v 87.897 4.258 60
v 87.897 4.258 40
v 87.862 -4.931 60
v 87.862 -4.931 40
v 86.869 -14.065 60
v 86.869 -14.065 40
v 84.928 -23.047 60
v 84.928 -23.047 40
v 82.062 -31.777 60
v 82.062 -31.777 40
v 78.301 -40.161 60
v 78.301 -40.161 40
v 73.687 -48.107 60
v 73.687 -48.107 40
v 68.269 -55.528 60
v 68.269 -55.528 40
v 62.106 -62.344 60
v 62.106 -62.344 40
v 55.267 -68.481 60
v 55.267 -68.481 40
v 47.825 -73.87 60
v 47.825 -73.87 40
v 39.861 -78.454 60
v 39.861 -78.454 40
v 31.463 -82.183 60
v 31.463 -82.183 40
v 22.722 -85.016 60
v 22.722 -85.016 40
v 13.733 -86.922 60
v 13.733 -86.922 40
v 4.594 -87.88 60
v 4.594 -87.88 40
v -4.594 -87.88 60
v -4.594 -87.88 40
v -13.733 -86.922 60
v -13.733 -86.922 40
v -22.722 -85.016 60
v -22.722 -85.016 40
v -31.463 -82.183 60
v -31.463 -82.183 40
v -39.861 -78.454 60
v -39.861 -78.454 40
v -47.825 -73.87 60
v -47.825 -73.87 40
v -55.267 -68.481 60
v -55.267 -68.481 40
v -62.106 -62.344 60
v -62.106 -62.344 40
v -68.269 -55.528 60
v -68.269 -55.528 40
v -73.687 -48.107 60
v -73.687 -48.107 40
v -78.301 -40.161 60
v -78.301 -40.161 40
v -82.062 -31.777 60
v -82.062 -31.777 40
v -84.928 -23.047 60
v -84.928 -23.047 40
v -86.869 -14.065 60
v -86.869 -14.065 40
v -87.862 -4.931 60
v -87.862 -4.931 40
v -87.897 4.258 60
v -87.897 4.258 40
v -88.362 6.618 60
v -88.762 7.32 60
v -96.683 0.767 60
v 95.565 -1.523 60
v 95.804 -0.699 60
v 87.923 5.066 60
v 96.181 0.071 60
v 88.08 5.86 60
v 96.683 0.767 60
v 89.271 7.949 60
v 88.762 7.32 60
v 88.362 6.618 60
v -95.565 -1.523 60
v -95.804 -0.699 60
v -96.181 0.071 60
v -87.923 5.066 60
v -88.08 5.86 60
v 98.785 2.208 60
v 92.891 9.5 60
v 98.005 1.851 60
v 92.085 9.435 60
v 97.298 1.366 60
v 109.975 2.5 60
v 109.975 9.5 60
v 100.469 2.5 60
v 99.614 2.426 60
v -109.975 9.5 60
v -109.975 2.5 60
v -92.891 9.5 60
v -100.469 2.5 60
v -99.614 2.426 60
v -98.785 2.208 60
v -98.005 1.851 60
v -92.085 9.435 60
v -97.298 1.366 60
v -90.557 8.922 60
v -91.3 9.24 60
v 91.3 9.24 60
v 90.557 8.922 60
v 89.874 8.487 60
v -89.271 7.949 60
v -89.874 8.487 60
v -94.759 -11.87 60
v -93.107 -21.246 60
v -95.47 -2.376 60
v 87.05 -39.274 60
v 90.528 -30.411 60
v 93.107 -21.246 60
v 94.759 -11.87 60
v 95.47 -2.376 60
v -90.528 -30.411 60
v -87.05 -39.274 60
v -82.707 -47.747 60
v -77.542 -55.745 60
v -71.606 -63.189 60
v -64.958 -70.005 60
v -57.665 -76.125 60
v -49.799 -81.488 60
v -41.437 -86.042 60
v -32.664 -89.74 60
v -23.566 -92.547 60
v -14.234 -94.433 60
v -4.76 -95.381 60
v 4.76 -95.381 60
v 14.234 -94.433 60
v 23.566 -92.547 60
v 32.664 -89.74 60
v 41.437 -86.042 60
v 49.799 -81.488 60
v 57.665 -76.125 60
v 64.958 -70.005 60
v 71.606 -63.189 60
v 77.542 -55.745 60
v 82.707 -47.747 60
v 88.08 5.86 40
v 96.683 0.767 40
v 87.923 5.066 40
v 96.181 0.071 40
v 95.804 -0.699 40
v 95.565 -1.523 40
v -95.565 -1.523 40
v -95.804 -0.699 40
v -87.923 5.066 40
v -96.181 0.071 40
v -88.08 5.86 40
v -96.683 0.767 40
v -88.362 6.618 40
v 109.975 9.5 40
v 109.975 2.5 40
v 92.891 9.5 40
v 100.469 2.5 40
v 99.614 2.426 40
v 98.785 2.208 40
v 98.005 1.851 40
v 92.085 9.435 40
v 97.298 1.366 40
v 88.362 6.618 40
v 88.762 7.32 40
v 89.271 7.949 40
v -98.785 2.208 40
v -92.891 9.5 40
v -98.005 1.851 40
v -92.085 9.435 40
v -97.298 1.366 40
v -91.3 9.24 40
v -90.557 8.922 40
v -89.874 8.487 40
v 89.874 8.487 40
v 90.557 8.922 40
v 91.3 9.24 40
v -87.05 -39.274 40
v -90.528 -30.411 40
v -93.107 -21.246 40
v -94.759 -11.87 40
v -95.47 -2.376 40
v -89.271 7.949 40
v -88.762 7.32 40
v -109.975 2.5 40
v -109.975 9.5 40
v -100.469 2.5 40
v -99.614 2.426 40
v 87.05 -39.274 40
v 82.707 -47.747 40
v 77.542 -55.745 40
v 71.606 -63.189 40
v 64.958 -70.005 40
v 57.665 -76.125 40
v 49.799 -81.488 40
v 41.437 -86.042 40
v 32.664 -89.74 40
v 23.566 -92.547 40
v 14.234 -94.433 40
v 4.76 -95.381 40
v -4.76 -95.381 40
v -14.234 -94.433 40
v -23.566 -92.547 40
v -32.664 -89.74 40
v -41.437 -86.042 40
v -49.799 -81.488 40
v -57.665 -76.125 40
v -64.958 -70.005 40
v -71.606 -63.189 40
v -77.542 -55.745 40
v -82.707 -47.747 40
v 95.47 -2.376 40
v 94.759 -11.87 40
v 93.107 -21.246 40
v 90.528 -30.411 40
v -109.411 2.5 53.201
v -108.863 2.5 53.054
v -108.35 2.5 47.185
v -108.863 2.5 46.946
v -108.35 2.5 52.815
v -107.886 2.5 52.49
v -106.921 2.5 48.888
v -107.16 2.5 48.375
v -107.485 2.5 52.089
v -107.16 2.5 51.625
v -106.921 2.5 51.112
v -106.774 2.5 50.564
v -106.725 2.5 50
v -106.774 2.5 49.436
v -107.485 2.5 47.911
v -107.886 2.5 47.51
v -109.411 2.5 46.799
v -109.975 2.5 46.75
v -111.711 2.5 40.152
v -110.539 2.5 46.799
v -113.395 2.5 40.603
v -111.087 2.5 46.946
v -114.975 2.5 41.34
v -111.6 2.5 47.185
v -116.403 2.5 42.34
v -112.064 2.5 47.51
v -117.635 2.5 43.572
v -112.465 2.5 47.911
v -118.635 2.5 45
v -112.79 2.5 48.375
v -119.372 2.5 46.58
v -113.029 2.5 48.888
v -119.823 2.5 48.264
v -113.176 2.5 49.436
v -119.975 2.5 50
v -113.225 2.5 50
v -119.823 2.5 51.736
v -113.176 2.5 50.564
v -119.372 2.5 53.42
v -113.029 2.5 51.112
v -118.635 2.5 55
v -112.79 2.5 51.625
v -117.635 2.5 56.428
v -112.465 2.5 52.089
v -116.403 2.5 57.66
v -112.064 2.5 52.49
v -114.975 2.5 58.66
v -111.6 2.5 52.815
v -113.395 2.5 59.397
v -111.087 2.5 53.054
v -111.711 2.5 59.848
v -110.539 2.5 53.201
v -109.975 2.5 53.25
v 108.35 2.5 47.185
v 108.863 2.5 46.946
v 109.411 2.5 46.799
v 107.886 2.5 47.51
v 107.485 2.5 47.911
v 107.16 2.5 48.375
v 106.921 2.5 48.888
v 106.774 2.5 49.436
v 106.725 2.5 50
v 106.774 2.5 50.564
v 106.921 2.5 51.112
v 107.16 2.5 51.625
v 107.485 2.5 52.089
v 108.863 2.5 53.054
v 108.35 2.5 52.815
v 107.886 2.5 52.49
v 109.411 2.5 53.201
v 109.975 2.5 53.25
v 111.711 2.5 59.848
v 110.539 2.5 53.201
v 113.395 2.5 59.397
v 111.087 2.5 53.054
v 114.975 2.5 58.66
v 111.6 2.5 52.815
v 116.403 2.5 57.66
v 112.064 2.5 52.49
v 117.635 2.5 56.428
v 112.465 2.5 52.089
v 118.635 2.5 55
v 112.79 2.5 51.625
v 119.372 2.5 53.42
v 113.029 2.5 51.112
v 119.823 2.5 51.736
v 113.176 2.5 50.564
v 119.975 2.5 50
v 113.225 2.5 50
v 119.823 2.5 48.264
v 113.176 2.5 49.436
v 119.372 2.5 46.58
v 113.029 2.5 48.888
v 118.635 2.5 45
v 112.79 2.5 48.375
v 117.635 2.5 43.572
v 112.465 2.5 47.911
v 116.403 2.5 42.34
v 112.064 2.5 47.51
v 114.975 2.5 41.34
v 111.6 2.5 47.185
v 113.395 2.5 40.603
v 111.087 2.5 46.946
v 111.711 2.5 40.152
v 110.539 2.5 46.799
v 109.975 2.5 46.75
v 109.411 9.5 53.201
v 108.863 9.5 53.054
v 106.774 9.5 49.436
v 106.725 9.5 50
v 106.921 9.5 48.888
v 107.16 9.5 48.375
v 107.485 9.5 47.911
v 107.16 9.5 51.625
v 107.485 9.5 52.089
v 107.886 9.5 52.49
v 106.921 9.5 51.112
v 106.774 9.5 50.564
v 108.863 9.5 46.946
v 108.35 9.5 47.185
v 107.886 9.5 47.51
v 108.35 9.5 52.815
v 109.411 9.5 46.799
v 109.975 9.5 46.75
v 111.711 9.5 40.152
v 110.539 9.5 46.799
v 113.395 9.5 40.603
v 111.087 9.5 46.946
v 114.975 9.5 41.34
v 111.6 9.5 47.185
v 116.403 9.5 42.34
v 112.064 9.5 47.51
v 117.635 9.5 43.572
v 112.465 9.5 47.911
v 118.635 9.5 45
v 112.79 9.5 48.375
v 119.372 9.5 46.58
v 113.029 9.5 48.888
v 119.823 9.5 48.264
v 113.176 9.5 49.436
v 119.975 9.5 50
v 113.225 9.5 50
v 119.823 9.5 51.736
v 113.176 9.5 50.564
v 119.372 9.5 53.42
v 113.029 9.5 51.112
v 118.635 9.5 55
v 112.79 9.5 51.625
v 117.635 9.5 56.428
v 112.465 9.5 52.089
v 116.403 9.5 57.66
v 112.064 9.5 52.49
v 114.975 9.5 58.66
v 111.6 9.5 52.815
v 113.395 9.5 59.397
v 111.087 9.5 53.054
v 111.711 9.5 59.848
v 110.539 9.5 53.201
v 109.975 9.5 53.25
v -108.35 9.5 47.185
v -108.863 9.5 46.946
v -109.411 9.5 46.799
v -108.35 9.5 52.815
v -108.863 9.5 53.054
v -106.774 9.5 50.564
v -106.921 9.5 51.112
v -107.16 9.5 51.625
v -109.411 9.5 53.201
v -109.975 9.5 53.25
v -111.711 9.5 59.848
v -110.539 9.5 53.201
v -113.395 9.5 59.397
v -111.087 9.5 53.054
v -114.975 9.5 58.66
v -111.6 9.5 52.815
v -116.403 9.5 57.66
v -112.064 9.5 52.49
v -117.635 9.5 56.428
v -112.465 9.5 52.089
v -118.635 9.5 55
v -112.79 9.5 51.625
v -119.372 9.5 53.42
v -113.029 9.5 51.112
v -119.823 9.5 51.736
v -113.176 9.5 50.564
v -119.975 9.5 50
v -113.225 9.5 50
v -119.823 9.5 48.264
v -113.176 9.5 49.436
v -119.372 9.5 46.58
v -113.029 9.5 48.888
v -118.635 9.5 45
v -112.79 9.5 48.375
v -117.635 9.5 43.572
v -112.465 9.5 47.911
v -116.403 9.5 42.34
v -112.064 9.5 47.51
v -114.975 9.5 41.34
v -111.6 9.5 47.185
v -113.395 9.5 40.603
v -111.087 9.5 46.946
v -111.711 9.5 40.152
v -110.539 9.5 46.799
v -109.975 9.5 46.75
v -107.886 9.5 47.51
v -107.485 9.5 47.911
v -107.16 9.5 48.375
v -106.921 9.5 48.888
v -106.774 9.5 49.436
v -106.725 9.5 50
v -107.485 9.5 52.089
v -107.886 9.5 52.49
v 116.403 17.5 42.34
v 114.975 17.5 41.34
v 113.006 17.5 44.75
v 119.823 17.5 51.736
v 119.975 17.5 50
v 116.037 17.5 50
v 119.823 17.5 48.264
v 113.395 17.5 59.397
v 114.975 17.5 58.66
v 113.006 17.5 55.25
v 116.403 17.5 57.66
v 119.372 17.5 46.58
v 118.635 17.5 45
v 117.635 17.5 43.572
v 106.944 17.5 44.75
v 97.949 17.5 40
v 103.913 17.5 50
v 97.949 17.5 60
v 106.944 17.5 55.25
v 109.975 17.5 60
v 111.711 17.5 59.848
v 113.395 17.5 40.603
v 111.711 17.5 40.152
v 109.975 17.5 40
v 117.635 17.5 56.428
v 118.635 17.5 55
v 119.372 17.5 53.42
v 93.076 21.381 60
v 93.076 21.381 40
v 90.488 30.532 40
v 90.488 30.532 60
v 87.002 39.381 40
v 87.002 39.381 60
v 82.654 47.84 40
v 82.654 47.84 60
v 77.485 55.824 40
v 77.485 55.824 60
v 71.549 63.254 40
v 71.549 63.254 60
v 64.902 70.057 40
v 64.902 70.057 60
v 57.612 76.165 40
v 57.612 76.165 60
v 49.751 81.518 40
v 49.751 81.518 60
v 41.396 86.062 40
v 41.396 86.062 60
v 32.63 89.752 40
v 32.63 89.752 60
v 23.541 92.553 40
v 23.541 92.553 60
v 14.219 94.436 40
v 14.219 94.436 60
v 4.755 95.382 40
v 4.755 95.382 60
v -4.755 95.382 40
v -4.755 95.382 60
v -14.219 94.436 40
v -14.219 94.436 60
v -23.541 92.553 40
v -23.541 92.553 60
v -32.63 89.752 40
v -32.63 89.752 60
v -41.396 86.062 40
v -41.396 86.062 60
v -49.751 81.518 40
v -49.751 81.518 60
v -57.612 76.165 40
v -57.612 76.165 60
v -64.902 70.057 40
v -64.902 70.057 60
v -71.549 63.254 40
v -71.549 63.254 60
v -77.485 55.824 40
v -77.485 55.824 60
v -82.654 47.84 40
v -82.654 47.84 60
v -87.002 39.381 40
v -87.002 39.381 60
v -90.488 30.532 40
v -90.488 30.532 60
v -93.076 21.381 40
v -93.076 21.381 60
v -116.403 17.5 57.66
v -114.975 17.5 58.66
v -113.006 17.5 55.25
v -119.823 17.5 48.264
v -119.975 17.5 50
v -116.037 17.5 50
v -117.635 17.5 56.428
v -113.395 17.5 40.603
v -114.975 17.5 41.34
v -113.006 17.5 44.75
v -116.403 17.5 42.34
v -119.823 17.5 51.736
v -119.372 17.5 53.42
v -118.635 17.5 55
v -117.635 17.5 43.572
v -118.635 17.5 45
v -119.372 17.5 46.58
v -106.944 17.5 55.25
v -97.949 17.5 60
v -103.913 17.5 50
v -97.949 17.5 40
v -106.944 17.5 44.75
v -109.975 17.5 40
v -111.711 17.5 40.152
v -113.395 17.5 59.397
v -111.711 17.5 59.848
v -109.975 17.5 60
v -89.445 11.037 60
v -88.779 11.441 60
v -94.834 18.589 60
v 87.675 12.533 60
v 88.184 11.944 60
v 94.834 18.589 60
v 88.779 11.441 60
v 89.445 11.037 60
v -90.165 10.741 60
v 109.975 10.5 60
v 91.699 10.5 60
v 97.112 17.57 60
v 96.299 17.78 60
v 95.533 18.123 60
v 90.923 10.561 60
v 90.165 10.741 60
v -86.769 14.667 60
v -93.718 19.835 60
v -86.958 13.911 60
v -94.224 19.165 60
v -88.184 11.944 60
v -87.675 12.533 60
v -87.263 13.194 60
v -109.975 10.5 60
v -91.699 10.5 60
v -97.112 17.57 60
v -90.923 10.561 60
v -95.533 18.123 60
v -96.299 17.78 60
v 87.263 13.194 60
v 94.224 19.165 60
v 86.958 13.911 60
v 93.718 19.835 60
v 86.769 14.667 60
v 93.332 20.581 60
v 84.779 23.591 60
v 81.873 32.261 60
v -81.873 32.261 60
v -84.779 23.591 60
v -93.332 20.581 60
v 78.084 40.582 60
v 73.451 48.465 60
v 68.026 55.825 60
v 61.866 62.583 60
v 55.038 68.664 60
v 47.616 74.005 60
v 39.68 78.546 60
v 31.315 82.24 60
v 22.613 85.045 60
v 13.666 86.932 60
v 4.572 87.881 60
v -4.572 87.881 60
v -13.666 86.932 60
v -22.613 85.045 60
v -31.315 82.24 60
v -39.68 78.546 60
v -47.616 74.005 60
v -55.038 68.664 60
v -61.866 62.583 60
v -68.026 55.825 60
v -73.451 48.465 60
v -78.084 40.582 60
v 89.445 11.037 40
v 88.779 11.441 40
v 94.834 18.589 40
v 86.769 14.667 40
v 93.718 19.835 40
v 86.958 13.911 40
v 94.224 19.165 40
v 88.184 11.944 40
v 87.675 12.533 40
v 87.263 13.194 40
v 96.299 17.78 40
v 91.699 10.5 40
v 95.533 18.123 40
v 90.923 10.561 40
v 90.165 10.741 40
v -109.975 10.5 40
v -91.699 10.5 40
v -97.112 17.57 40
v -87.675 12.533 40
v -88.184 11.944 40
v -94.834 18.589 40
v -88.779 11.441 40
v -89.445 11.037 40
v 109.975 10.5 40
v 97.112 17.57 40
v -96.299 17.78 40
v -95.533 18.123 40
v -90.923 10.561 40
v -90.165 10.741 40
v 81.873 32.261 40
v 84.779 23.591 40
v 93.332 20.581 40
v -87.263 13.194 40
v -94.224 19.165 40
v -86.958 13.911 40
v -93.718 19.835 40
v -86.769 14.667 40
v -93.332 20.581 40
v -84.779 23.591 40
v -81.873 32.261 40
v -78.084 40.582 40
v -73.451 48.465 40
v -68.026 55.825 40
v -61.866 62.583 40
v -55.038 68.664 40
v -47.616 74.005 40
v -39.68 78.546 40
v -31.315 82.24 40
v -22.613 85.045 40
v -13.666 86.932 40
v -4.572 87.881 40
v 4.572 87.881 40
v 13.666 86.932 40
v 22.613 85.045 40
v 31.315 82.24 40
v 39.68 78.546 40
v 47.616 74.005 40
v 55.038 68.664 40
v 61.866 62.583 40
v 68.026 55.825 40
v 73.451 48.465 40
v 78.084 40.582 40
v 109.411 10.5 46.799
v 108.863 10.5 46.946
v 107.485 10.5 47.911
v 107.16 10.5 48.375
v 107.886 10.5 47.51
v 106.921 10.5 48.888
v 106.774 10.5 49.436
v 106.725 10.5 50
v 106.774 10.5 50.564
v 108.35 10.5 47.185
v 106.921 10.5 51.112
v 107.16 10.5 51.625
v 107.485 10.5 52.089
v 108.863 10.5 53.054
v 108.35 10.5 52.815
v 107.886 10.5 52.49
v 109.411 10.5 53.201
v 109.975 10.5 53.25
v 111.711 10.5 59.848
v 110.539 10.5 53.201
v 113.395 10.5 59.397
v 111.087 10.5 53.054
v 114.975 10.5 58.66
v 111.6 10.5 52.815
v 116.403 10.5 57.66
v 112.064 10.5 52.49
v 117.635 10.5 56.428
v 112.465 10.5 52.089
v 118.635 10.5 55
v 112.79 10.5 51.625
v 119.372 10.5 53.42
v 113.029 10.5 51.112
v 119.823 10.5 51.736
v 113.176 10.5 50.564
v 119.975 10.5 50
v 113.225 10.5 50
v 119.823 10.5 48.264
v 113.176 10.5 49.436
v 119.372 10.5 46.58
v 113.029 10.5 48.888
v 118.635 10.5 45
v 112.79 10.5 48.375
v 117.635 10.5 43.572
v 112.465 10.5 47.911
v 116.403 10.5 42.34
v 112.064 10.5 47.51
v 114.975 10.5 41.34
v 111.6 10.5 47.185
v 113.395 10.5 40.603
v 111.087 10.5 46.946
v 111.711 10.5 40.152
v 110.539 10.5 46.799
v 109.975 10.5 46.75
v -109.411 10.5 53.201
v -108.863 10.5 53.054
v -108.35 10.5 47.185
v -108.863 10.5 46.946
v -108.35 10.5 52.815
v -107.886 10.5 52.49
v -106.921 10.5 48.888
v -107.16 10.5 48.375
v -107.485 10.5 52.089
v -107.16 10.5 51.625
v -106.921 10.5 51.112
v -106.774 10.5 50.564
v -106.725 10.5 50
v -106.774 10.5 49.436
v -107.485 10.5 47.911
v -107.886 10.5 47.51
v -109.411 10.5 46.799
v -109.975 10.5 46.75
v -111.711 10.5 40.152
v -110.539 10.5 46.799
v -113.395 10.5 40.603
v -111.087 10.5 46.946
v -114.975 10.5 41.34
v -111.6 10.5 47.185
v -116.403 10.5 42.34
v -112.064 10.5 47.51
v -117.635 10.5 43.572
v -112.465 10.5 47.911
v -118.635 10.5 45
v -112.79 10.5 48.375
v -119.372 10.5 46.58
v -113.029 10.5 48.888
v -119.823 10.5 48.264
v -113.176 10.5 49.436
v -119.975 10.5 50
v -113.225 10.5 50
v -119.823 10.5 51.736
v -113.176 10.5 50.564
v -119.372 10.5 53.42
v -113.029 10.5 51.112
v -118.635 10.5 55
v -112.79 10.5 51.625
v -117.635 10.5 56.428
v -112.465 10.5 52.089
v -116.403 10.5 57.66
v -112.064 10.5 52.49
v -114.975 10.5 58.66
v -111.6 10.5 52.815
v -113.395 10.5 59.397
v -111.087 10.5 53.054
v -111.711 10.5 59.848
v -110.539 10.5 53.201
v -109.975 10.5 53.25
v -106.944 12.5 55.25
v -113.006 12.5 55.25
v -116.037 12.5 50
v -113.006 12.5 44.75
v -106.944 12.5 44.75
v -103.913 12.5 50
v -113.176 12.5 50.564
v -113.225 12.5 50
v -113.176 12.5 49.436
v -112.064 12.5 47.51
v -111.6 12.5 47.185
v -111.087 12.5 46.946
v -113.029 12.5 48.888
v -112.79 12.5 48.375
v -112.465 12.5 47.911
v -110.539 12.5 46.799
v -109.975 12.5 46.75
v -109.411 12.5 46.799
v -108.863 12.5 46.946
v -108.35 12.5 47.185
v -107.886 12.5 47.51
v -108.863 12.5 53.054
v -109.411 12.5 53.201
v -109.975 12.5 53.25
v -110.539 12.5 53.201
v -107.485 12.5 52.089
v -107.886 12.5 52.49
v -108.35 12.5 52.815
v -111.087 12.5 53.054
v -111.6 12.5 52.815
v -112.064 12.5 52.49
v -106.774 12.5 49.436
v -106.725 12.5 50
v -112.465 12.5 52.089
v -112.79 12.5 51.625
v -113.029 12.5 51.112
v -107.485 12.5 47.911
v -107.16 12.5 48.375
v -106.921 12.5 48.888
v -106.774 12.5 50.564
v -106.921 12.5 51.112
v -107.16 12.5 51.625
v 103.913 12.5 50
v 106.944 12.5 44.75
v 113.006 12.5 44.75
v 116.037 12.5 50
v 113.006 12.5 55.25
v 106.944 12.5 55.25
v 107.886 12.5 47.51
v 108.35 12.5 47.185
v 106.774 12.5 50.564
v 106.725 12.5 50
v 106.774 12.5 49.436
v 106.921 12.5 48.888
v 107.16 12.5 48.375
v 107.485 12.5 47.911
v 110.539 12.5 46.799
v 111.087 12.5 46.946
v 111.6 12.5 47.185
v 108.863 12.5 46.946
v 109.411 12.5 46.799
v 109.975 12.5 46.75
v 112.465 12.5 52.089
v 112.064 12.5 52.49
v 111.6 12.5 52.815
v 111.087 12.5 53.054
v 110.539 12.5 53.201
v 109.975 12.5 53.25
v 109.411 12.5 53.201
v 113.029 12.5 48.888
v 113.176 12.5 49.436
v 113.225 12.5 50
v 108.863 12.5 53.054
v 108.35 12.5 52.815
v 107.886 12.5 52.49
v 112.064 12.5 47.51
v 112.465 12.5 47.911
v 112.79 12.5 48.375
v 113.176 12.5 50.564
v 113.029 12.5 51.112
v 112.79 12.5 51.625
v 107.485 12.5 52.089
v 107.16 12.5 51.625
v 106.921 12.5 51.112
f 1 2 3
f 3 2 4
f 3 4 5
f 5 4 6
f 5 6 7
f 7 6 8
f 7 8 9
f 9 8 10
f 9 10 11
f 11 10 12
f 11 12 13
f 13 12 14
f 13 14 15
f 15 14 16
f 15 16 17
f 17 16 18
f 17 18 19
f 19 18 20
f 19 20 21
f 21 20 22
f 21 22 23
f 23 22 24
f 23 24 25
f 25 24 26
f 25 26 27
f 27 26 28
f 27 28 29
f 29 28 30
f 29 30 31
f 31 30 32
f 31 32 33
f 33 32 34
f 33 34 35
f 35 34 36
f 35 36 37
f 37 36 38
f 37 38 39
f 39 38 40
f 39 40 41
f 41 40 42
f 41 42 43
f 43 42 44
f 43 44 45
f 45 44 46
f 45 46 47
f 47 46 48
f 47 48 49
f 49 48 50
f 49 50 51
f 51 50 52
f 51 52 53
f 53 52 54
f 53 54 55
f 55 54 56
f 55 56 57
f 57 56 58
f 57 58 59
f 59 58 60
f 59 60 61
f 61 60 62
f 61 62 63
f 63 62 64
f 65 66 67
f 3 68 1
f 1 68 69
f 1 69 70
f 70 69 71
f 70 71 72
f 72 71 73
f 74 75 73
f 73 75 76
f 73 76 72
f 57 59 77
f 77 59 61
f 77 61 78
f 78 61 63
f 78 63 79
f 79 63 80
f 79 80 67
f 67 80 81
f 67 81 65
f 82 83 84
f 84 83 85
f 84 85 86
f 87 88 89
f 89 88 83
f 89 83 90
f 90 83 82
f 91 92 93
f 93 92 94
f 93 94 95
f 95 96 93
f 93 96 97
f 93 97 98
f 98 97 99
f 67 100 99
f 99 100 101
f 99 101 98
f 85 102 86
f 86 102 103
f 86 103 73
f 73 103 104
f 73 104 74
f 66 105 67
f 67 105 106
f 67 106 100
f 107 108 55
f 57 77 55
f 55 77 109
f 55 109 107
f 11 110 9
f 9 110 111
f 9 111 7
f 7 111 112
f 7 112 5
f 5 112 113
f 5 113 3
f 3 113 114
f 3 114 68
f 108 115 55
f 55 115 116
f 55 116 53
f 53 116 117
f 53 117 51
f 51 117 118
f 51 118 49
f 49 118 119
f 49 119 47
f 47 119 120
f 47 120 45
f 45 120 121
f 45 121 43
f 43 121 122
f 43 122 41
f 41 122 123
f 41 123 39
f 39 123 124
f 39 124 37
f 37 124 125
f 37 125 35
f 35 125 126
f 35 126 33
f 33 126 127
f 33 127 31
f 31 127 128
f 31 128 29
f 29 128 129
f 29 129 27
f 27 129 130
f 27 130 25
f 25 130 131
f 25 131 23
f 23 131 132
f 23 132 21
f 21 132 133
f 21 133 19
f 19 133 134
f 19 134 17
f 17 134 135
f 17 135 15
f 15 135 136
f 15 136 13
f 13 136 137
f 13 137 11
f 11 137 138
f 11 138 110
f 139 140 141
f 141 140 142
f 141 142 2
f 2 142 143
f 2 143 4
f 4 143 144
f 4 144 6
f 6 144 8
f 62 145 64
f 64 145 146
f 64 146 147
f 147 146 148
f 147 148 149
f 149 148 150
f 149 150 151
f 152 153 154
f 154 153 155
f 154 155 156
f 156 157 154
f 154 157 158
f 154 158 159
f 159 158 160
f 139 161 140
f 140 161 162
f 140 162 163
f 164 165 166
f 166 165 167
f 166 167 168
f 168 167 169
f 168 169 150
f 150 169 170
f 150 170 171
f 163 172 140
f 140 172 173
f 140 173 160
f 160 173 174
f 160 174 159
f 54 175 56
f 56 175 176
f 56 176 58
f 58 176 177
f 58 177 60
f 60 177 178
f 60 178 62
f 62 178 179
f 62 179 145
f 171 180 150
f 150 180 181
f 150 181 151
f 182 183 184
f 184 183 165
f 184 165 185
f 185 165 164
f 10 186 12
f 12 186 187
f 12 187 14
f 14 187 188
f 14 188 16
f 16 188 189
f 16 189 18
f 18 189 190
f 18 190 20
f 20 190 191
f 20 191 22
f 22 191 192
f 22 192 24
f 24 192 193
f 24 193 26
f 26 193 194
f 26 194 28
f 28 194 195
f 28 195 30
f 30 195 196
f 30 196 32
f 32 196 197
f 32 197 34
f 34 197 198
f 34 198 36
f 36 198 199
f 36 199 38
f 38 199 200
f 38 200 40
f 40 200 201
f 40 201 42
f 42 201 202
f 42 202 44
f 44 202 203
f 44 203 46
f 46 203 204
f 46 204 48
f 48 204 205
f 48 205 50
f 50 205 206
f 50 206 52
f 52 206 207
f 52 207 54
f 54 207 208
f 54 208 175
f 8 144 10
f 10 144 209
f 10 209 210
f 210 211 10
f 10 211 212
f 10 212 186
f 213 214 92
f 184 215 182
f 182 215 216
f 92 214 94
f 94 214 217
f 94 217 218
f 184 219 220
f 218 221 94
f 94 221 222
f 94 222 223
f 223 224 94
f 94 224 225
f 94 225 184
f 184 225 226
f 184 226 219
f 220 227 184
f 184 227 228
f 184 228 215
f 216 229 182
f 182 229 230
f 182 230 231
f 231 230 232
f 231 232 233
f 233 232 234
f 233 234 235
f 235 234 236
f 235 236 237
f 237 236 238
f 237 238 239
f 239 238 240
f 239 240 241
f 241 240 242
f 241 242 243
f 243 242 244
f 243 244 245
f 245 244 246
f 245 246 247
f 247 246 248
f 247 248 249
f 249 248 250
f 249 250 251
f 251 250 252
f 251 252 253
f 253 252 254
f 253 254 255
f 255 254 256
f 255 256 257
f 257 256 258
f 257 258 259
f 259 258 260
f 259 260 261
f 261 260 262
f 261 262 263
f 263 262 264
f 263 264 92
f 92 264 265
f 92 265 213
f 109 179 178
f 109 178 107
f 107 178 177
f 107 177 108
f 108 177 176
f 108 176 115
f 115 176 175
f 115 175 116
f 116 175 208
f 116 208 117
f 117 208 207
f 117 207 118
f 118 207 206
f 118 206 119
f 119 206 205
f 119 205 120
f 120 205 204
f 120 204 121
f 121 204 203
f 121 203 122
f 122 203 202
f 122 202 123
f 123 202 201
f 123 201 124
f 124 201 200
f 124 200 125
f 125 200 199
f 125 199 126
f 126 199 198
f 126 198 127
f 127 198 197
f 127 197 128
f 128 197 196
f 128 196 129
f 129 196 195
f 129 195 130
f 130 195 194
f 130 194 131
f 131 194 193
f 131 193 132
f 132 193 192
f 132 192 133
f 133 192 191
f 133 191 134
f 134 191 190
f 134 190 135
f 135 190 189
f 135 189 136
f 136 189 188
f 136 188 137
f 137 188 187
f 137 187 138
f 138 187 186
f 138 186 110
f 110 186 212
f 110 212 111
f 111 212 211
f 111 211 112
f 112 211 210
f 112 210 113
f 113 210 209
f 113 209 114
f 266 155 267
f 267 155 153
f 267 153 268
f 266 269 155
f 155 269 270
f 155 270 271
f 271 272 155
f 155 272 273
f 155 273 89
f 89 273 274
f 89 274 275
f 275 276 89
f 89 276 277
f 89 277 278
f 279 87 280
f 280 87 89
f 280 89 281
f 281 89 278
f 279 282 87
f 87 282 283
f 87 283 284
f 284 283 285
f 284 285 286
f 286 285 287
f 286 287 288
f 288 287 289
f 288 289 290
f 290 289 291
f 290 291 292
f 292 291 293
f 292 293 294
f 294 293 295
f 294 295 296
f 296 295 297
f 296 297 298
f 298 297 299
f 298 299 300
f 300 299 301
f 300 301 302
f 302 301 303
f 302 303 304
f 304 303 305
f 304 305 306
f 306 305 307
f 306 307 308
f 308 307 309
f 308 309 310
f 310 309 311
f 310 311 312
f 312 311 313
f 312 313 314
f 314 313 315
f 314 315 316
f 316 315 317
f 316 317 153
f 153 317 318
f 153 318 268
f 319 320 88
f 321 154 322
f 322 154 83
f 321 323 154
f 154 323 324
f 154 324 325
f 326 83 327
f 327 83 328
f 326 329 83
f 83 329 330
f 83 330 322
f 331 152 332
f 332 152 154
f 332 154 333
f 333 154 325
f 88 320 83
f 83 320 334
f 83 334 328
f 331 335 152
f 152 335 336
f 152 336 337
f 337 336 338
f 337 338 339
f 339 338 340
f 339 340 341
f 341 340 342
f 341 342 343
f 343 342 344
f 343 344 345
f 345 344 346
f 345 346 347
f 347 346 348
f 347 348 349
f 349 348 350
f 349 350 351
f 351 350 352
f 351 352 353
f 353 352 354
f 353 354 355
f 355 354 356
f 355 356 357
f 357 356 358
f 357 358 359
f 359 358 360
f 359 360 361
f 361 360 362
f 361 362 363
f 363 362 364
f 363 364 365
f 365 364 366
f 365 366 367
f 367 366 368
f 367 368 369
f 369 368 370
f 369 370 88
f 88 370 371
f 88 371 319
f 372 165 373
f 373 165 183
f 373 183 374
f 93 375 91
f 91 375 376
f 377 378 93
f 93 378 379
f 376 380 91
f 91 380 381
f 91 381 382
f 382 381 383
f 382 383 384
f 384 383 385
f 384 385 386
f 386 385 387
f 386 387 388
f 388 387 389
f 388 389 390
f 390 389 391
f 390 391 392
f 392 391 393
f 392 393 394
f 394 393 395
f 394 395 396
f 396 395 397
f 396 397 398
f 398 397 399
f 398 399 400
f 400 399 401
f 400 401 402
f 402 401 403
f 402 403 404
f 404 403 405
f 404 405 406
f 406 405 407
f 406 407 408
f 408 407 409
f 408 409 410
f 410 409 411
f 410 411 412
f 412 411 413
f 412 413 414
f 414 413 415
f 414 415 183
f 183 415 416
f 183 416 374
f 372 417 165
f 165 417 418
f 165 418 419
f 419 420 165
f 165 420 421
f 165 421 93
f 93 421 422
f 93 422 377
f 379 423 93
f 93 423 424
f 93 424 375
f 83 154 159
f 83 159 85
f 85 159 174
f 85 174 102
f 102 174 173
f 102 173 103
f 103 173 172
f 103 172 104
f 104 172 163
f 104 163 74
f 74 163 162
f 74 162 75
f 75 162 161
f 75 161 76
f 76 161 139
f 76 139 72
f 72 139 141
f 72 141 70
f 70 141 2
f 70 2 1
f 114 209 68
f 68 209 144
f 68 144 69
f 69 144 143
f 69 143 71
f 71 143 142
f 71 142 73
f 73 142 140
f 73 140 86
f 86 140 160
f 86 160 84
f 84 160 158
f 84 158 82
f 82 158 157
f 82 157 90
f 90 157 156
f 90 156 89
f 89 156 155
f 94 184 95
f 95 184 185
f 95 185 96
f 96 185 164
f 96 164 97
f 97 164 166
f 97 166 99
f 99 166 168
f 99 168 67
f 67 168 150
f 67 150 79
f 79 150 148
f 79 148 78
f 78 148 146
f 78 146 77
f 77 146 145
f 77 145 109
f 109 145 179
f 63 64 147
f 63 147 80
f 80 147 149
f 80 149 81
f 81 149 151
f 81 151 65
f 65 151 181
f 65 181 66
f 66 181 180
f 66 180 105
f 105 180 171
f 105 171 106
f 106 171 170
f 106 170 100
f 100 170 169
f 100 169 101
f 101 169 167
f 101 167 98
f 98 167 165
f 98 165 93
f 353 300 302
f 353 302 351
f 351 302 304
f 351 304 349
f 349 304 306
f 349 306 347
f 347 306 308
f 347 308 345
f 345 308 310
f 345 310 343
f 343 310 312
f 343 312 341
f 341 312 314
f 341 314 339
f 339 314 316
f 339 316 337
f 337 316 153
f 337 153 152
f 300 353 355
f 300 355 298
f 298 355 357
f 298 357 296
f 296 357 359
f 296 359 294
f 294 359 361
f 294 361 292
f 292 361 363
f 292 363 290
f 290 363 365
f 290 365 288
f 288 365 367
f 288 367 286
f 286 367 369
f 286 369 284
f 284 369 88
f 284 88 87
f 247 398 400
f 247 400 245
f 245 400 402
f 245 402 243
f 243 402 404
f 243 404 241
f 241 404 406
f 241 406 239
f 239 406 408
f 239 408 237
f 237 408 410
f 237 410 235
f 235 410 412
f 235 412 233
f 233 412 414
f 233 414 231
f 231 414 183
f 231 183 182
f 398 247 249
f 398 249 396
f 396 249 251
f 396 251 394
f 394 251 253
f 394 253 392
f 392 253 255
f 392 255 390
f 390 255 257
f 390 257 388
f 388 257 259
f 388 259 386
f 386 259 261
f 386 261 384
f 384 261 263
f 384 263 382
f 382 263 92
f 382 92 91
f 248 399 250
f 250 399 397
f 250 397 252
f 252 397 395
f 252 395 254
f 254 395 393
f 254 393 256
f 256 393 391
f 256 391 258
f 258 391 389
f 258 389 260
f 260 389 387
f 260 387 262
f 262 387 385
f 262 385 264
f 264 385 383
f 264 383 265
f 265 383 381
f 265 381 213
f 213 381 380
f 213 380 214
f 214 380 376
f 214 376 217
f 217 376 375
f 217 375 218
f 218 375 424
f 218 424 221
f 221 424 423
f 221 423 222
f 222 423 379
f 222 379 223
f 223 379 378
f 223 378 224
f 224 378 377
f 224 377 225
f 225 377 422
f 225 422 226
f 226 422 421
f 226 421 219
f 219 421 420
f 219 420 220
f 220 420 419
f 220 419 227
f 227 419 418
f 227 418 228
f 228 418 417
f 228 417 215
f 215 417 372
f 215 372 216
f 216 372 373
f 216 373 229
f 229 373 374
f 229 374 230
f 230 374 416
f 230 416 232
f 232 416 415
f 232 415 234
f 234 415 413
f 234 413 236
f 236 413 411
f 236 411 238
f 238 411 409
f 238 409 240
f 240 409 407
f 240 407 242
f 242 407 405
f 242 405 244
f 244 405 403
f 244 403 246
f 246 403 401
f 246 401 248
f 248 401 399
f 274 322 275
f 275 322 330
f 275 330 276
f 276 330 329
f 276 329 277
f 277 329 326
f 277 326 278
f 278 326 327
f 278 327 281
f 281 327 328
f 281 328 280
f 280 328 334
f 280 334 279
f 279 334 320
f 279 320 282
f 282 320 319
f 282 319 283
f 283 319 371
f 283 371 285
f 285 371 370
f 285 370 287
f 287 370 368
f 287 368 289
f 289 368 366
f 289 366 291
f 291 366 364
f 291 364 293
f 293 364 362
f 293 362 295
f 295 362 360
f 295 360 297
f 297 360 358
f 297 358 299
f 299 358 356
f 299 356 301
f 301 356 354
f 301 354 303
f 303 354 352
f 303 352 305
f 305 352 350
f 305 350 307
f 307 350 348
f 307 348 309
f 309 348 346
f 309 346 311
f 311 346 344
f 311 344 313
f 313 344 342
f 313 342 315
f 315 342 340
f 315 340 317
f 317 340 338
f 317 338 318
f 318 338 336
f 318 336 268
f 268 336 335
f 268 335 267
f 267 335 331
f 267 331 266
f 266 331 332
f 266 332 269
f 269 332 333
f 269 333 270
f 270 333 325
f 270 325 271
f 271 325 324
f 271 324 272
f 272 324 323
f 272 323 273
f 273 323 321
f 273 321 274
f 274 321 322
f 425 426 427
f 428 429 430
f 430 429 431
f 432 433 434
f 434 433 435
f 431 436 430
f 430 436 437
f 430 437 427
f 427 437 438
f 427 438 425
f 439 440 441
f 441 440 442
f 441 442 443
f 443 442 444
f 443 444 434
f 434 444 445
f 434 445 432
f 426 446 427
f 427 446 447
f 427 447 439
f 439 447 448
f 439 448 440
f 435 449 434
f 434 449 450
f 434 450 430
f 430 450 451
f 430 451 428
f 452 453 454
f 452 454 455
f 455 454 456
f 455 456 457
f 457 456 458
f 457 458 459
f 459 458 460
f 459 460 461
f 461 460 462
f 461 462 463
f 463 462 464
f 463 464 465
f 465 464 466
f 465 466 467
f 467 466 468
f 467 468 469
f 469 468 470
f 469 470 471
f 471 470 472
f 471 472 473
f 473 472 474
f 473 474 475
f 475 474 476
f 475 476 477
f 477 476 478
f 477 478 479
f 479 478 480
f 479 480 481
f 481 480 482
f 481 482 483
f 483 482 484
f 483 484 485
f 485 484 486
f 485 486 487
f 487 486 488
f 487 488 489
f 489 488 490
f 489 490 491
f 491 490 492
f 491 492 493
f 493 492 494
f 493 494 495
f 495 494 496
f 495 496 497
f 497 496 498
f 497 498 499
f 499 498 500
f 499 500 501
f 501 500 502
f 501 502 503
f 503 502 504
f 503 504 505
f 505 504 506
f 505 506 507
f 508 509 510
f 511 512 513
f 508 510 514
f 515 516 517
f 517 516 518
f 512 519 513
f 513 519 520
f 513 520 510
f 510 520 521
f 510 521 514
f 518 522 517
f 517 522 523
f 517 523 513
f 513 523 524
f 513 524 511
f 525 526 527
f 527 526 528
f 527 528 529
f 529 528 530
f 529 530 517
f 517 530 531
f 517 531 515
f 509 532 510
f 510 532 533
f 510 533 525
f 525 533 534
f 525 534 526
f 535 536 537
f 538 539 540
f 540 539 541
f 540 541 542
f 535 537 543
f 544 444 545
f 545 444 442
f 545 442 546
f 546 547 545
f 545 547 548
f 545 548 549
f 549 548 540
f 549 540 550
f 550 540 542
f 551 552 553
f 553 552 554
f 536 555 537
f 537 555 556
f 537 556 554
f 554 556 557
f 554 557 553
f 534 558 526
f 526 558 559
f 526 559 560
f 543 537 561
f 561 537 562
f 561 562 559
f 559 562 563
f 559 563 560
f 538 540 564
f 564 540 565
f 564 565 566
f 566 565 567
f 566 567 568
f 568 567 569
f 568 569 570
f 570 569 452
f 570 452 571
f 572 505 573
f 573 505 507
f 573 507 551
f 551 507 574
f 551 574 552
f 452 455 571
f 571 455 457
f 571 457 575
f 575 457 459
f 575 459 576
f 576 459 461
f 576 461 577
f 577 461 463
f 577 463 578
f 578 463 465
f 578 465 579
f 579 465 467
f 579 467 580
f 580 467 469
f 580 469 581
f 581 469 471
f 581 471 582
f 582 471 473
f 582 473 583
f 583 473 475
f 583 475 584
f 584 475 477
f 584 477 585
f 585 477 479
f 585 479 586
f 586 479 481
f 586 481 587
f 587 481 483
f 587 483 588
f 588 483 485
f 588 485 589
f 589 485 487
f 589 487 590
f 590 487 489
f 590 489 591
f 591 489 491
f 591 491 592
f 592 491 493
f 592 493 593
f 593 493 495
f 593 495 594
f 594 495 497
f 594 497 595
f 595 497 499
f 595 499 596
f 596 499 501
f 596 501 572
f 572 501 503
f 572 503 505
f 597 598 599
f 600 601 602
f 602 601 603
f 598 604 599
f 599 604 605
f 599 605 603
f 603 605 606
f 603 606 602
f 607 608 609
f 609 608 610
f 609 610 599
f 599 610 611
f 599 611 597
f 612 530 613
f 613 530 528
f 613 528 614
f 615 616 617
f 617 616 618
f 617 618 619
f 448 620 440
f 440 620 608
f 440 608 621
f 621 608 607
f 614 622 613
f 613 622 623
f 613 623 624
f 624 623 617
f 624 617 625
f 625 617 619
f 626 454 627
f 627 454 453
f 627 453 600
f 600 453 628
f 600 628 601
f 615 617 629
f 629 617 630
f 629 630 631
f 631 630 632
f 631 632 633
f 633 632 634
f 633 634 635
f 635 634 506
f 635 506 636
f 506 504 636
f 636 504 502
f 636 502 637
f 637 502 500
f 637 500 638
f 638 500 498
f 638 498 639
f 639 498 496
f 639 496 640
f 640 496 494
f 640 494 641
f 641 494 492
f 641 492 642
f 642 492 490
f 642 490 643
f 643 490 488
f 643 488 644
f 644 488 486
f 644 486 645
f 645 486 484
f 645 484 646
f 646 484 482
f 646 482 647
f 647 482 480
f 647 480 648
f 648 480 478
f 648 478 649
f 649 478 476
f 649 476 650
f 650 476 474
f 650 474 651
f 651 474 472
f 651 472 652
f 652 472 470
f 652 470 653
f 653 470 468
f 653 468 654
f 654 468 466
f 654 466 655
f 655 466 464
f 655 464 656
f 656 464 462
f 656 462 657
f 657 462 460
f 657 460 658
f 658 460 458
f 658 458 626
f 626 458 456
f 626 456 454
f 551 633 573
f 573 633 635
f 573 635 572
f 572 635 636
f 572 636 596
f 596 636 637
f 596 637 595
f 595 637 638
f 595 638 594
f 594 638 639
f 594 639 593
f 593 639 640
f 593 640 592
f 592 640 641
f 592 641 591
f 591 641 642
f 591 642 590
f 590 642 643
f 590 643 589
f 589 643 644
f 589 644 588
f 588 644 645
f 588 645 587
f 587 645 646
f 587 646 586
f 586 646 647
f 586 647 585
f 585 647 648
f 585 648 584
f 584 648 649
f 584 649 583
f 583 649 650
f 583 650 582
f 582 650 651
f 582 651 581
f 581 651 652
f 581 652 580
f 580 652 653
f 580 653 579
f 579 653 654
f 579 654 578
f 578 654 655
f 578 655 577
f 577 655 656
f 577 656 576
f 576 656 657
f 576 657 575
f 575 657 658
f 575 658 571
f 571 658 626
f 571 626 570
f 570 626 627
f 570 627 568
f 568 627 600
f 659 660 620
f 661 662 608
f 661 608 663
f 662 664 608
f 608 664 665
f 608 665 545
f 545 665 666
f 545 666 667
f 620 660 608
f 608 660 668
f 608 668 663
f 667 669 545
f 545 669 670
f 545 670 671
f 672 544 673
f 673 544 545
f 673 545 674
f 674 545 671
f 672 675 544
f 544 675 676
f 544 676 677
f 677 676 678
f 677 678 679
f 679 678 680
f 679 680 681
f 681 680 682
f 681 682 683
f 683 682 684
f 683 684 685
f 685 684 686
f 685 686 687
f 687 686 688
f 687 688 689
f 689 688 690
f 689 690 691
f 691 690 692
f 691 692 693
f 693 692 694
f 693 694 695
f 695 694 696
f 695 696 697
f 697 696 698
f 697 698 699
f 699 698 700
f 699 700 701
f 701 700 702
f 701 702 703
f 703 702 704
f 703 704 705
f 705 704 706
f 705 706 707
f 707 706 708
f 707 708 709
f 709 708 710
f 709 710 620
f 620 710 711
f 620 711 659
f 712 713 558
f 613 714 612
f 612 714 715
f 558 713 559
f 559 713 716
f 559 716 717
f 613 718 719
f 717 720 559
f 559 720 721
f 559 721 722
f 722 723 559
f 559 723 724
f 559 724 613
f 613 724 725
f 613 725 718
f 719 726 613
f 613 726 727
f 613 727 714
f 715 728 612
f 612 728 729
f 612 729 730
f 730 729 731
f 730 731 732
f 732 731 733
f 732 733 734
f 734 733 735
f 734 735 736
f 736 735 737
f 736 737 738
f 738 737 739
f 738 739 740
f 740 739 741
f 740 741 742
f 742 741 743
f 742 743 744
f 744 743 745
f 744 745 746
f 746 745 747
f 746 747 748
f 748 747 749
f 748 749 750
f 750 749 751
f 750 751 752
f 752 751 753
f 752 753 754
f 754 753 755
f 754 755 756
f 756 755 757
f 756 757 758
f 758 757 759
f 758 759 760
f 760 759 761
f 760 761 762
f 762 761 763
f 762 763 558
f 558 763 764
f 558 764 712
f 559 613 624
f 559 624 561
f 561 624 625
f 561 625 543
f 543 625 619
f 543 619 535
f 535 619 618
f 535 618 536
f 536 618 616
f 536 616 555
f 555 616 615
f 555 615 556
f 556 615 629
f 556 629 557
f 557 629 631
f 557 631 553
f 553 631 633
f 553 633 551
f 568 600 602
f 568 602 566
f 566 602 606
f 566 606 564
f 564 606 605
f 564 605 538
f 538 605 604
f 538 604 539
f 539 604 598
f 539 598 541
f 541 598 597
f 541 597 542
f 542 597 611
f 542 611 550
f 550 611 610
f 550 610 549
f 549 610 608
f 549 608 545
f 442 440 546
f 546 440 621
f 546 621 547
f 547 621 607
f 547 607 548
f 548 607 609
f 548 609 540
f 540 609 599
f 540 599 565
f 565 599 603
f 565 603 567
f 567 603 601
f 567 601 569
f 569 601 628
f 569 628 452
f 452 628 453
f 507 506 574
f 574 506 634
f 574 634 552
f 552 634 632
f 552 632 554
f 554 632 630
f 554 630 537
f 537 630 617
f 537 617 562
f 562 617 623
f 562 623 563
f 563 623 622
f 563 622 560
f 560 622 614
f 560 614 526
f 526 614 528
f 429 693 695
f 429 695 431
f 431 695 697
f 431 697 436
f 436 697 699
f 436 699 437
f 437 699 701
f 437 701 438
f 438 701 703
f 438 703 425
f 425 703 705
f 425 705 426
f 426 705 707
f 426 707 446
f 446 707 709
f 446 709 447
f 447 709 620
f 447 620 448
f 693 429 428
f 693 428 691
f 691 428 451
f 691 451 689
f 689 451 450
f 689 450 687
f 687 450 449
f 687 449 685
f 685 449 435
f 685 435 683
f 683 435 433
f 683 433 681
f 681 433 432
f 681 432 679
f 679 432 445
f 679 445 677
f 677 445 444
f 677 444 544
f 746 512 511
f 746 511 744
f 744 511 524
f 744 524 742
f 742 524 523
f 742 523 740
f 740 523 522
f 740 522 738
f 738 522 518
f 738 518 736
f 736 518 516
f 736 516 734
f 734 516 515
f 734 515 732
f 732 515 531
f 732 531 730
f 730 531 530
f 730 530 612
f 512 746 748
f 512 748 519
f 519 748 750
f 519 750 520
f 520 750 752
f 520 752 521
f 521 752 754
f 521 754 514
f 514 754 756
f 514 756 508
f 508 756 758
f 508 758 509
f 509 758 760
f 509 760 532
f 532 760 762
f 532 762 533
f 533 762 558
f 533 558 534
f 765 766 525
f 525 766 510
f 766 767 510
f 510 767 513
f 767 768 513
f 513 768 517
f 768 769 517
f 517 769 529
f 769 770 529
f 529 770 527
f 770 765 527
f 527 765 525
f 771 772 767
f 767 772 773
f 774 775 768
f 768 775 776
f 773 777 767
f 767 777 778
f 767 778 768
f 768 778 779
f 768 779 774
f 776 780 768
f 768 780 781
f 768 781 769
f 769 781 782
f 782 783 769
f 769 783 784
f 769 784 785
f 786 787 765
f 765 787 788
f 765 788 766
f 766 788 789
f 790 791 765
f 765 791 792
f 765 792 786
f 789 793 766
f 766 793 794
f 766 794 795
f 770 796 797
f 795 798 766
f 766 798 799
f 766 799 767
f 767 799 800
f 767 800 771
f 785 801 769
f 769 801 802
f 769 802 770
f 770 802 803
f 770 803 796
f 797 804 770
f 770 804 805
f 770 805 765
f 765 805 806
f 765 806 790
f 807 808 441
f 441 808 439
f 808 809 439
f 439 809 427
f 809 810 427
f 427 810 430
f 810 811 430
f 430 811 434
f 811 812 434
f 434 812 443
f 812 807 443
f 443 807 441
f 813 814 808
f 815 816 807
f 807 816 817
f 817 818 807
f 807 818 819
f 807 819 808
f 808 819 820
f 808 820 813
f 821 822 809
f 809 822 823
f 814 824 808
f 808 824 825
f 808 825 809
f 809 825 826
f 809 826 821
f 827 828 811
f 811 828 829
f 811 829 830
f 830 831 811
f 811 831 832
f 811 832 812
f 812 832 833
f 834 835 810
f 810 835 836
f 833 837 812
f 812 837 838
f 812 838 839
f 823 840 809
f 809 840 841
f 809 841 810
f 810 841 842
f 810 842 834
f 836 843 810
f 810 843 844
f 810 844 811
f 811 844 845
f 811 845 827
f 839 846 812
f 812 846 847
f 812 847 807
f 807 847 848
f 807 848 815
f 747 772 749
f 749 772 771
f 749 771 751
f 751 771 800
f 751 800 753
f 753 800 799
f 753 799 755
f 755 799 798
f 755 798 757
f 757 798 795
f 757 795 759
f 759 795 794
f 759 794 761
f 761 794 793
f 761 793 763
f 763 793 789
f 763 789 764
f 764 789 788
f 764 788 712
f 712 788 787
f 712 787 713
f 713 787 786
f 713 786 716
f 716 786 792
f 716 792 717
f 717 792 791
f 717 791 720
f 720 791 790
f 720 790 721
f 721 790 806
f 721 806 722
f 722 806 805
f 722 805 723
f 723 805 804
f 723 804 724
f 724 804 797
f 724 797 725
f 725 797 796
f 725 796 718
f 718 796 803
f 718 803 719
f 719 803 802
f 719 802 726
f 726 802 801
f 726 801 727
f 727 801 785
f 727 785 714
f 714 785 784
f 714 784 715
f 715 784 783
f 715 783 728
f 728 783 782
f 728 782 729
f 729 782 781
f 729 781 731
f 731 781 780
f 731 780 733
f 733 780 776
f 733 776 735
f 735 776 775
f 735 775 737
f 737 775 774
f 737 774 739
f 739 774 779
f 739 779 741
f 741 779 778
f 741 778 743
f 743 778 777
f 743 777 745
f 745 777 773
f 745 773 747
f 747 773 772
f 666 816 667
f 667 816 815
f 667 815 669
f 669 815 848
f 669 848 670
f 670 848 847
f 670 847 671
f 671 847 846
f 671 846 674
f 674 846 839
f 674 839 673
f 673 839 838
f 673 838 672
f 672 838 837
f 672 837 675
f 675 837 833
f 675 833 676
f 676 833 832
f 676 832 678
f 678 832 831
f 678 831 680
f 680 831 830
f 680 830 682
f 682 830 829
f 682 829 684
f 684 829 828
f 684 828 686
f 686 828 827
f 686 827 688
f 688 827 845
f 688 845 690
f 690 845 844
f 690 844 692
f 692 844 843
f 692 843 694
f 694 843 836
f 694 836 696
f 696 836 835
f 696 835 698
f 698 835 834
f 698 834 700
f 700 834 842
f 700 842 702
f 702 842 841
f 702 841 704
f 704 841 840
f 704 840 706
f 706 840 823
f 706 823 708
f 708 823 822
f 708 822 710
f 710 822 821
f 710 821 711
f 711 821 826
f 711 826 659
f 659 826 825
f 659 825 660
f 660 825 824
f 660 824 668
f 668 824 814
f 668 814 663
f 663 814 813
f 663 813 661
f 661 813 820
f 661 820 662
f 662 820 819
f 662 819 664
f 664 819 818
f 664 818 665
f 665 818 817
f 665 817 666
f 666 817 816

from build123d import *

# Parameters (mm, degrees)
BOSS_EXTRUDE1_DEPTH     = 20
CUT_EXTRUDE1_DEPTH      = 266.13439864
CUT_EXTRUDE1_DEPTH_BACK = 266.13439864
SKETCH3_W               = 20
SKETCH3_H               = 1
FILLET1_R               = 5
FILLET2_R               = 5
FILLET3_R               = 10
FILLET4_R               = 10
CUT_EXTRUDE2_DEPTH      = 5
SKETCH5_R               = 3.25
CUT_EXTRUDE3_DEPTH      = 173.214981616


with BuildPart() as part:
    # Sketch2 → Boss-Extrude1 (new body)
    with BuildSketch(Plane(origin=(0, 0, 40), x_dir=(-1, 0, 0), z_dir=(0, 0, -1))):
        with BuildLine():
            Line((94.97499671, 10), (119.97499671, 10))
            Line((119.97499671, 10), (119.97499671, 17.5))
            Line((119.97499671, 17.5), (93.882905792, 17.5))
            ThreePointArc((93.882905792, 17.5), (94.503382661, 13.760838116), (94.97499671, 10))
        make_face()
        with BuildLine():
            Line((87.429971978, 10), (94.97499671, 10))
            ThreePointArc((94.97499671, 10), (94.503382661, 13.760838116), (93.882905792, 17.5))
            Line((93.882905792, 17.5), (86.242390969, 17.5))
            ThreePointArc((86.242390969, 17.5), (86.917115189, 13.762815379), (87.429971978, 10))
        make_face()
        with BuildLine():
            Line((86.242390969, 17.5), (93.882905792, 17.5))
            ThreePointArc((93.882905792, 17.5), (0, 95.5), (-93.882905792, 17.5))
            Line((-93.882905792, 17.5), (-86.242390969, 17.5))
            ThreePointArc((-86.242390969, 17.5), (0, 88), (86.242390969, 17.5))
        make_face()
        with BuildLine():
            Line((87.964481468, 2.5), (95.467271879, 2.5))
            ThreePointArc((95.467271879, 2.5), (95.294946961, 6.254844819), (94.97499671, 10))
            Line((94.97499671, 10), (87.429971978, 10))
            ThreePointArc((87.429971978, 10), (87.77736653, 6.255711398), (87.964481468, 2.5))
        make_face()
        with BuildLine():
            Line((95.467271879, 2.5), (119.97499671, 2.5))
            Line((119.97499671, 2.5), (119.97499671, 10))
            Line((119.97499671, 10), (94.97499671, 10))
            ThreePointArc((94.97499671, 10), (95.294946961, 6.254844819), (95.467271879, 2.5))
        make_face()
        with BuildLine():
            ThreePointArc((95.5, 0), (95.491817619, 1.250107108), (95.467271879, 2.5))
            Line((95.467271879, 2.5), (87.964481468, 2.5))
            ThreePointArc((87.964481468, 2.5), (87.991119919, 1.25012615), (88, 0))
            ThreePointArc((88, 0), (-1.25012615, -87.991119919), (-87.964481468, 2.5))
            Line((-87.964481468, 2.5), (-95.467271879, 2.5))
            ThreePointArc((-95.467271879, 2.5), (-1.250107108, -95.491817619), (95.5, 0))
        make_face()
        with BuildLine():
            Line((-95.467271879, 2.5), (-87.964481468, 2.5))
            ThreePointArc((-87.964481468, 2.5), (-87.77736653, 6.255711398), (-87.429971978, 10))
            Line((-87.429971978, 10), (-94.97499671, 10))
            ThreePointArc((-94.97499671, 10), (-95.294946961, 6.254844819), (-95.467271879, 2.5))
        make_face()
        with BuildLine():
            Line((-94.97499671, 10), (-87.429971978, 10))
            ThreePointArc((-87.429971978, 10), (-86.917115189, 13.762815379), (-86.242390969, 17.5))
            Line((-86.242390969, 17.5), (-93.882905792, 17.5))
            ThreePointArc((-93.882905792, 17.5), (-94.503382661, 13.760838116), (-94.97499671, 10))
        make_face()
        with BuildLine():
            Line((-119.97499671, 10), (-94.97499671, 10))
            ThreePointArc((-94.97499671, 10), (-94.503382661, 13.760838116), (-93.882905792, 17.5))
            Line((-93.882905792, 17.5), (-119.97499671, 17.5))
            Line((-119.97499671, 17.5), (-119.97499671, 10))
        make_face()
        with BuildLine():
            Line((-119.97499671, 2.5), (-95.467271879, 2.5))
            ThreePointArc((-95.467271879, 2.5), (-95.294946961, 6.254844819), (-94.97499671, 10))
            Line((-94.97499671, 10), (-119.97499671, 10))
            Line((-119.97499671, 10), (-119.97499671, 2.5))
        make_face()
    extrude(amount=-BOSS_EXTRUDE1_DEPTH)

    # Sketch3 → Cut-Extrude1 (cut, two sides: drawn at the far end of the back side and taken through both)
    with BuildSketch(Plane(origin=(119.97499671, 0, 0), x_dir=(0, 0, -1), z_dir=(1, 0, 0)).offset(-CUT_EXTRUDE1_DEPTH_BACK)):
        with Locations((-50, 10)):
            Rectangle(SKETCH3_W, SKETCH3_H)
    extrude(amount=CUT_EXTRUDE1_DEPTH + CUT_EXTRUDE1_DEPTH_BACK, mode=Mode.SUBTRACT)


with BuildPart() as cut_extrude1_piece_1:
    # of the separate pieces the step leaves, piece 1, a body of its own (cut_extrude1_pieces)
    add(part.part.solids().sort_by_distance((-119.97499671, 2.5, 40))[0])

    # Fillet2
    fillet2_edges = [cut_extrude1_piece_1.edges().sort_by_distance(p)[0] for p in [
        (-95.467271879, 2.5, 50),
        (95.467271879, 2.5, 50),
        (87.485713119, 9.5, 50),
        (-87.485713119, 9.5, 50),
    ]]
    fillet(fillet2_edges, radius=FILLET2_R)

    # Fillet3
    fillet3_edges = [cut_extrude1_piece_1.edges().sort_by_distance(p)[0] for p in [
        (119.97499671, 6, 60),
        (-119.97499671, 6, 40),
        (-119.97499671, 6, 60),
        (119.97499671, 6, 40),
    ]]
    fillet(fillet3_edges, radius=FILLET3_R - 0.0001)  # a hair under: the kernel refuses the full size


with BuildPart() as cut_extrude1_piece_2:
    # of the separate pieces the step leaves, piece 2, a body of its own (cut_extrude1_pieces)
    add(part.part.solids().sort_by_distance((-119.97499671, 10.5, 40))[0])

    # Fillet1
    fillet1_edges = [cut_extrude1_piece_2.edges().sort_by_distance(p)[0] for p in [
        (93.882905792, 17.5, 50),
        (-93.882905792, 17.5, 50),
        (87.371333972, 10.5, 50),
        (-87.371333972, 10.5, 50),
    ]]
    fillet(fillet1_edges, radius=FILLET1_R)

    # Fillet4
    fillet4_edges = [cut_extrude1_piece_2.edges().sort_by_distance(p)[0] for p in [
        (-119.97499671, 14, 60),
        (-119.97499671, 14, 40),
        (119.97499671, 14, 60),
        (119.97499671, 14, 40),
    ]]
    fillet(fillet4_edges, radius=FILLET4_R - 0.0001)  # a hair under: the kernel refuses the full size

    # Sketch4 → Cut-Extrude2 (cut)
    with BuildSketch(Plane(origin=(0, 17.5, 0), x_dir=(1, 0, 0), z_dir=(0, 1, 0))):
        Polygon((106.943907796, -55.25), (113.006085623, -55.25), (116.037174536, -50), (113.006085623, -44.75), (106.943907796, -44.75), (103.912818883, -50), align=None)
        Polygon((-103.912818883, -50), (-106.943907796, -44.75), (-113.006085623, -44.75), (-116.037174536, -50), (-113.006085623, -55.25), (-106.943907796, -55.25), align=None)
    extrude(amount=-CUT_EXTRUDE2_DEPTH, mode=Mode.SUBTRACT)


with BuildPart() as cut_extrude3_tool:
    # Sketch5 → Cut-Extrude3 (new, through all)
    with BuildSketch(Plane(origin=(0, 12.5, 0), x_dir=(1, 0, 0), z_dir=(0, 1, 0))):
        with Locations(Location((-109.97499671, -50, 0), (0, 0, 270))):
            Circle(SKETCH5_R)
        with Locations(Location((109.97499671, -50, 0), (0, 0, 270))):
            Circle(SKETCH5_R)
    extrude(amount=-CUT_EXTRUDE3_DEPTH)


with BuildPart() as cut_extrude1_piece_1_1:
    add(cut_extrude1_piece_1.part)

    # Cut-Extrude3: cut by cut_extrude3_tool
    add(cut_extrude3_tool.part, mode=Mode.SUBTRACT)


with BuildPart() as cut_extrude1_piece_2_1:
    add(cut_extrude1_piece_2.part)

    # Cut-Extrude3: cut by cut_extrude3_tool
    add(cut_extrude3_tool.part, mode=Mode.SUBTRACT)


solid = Compound([cut_extrude1_piece_1_1.part, cut_extrude1_piece_2_1.part])
